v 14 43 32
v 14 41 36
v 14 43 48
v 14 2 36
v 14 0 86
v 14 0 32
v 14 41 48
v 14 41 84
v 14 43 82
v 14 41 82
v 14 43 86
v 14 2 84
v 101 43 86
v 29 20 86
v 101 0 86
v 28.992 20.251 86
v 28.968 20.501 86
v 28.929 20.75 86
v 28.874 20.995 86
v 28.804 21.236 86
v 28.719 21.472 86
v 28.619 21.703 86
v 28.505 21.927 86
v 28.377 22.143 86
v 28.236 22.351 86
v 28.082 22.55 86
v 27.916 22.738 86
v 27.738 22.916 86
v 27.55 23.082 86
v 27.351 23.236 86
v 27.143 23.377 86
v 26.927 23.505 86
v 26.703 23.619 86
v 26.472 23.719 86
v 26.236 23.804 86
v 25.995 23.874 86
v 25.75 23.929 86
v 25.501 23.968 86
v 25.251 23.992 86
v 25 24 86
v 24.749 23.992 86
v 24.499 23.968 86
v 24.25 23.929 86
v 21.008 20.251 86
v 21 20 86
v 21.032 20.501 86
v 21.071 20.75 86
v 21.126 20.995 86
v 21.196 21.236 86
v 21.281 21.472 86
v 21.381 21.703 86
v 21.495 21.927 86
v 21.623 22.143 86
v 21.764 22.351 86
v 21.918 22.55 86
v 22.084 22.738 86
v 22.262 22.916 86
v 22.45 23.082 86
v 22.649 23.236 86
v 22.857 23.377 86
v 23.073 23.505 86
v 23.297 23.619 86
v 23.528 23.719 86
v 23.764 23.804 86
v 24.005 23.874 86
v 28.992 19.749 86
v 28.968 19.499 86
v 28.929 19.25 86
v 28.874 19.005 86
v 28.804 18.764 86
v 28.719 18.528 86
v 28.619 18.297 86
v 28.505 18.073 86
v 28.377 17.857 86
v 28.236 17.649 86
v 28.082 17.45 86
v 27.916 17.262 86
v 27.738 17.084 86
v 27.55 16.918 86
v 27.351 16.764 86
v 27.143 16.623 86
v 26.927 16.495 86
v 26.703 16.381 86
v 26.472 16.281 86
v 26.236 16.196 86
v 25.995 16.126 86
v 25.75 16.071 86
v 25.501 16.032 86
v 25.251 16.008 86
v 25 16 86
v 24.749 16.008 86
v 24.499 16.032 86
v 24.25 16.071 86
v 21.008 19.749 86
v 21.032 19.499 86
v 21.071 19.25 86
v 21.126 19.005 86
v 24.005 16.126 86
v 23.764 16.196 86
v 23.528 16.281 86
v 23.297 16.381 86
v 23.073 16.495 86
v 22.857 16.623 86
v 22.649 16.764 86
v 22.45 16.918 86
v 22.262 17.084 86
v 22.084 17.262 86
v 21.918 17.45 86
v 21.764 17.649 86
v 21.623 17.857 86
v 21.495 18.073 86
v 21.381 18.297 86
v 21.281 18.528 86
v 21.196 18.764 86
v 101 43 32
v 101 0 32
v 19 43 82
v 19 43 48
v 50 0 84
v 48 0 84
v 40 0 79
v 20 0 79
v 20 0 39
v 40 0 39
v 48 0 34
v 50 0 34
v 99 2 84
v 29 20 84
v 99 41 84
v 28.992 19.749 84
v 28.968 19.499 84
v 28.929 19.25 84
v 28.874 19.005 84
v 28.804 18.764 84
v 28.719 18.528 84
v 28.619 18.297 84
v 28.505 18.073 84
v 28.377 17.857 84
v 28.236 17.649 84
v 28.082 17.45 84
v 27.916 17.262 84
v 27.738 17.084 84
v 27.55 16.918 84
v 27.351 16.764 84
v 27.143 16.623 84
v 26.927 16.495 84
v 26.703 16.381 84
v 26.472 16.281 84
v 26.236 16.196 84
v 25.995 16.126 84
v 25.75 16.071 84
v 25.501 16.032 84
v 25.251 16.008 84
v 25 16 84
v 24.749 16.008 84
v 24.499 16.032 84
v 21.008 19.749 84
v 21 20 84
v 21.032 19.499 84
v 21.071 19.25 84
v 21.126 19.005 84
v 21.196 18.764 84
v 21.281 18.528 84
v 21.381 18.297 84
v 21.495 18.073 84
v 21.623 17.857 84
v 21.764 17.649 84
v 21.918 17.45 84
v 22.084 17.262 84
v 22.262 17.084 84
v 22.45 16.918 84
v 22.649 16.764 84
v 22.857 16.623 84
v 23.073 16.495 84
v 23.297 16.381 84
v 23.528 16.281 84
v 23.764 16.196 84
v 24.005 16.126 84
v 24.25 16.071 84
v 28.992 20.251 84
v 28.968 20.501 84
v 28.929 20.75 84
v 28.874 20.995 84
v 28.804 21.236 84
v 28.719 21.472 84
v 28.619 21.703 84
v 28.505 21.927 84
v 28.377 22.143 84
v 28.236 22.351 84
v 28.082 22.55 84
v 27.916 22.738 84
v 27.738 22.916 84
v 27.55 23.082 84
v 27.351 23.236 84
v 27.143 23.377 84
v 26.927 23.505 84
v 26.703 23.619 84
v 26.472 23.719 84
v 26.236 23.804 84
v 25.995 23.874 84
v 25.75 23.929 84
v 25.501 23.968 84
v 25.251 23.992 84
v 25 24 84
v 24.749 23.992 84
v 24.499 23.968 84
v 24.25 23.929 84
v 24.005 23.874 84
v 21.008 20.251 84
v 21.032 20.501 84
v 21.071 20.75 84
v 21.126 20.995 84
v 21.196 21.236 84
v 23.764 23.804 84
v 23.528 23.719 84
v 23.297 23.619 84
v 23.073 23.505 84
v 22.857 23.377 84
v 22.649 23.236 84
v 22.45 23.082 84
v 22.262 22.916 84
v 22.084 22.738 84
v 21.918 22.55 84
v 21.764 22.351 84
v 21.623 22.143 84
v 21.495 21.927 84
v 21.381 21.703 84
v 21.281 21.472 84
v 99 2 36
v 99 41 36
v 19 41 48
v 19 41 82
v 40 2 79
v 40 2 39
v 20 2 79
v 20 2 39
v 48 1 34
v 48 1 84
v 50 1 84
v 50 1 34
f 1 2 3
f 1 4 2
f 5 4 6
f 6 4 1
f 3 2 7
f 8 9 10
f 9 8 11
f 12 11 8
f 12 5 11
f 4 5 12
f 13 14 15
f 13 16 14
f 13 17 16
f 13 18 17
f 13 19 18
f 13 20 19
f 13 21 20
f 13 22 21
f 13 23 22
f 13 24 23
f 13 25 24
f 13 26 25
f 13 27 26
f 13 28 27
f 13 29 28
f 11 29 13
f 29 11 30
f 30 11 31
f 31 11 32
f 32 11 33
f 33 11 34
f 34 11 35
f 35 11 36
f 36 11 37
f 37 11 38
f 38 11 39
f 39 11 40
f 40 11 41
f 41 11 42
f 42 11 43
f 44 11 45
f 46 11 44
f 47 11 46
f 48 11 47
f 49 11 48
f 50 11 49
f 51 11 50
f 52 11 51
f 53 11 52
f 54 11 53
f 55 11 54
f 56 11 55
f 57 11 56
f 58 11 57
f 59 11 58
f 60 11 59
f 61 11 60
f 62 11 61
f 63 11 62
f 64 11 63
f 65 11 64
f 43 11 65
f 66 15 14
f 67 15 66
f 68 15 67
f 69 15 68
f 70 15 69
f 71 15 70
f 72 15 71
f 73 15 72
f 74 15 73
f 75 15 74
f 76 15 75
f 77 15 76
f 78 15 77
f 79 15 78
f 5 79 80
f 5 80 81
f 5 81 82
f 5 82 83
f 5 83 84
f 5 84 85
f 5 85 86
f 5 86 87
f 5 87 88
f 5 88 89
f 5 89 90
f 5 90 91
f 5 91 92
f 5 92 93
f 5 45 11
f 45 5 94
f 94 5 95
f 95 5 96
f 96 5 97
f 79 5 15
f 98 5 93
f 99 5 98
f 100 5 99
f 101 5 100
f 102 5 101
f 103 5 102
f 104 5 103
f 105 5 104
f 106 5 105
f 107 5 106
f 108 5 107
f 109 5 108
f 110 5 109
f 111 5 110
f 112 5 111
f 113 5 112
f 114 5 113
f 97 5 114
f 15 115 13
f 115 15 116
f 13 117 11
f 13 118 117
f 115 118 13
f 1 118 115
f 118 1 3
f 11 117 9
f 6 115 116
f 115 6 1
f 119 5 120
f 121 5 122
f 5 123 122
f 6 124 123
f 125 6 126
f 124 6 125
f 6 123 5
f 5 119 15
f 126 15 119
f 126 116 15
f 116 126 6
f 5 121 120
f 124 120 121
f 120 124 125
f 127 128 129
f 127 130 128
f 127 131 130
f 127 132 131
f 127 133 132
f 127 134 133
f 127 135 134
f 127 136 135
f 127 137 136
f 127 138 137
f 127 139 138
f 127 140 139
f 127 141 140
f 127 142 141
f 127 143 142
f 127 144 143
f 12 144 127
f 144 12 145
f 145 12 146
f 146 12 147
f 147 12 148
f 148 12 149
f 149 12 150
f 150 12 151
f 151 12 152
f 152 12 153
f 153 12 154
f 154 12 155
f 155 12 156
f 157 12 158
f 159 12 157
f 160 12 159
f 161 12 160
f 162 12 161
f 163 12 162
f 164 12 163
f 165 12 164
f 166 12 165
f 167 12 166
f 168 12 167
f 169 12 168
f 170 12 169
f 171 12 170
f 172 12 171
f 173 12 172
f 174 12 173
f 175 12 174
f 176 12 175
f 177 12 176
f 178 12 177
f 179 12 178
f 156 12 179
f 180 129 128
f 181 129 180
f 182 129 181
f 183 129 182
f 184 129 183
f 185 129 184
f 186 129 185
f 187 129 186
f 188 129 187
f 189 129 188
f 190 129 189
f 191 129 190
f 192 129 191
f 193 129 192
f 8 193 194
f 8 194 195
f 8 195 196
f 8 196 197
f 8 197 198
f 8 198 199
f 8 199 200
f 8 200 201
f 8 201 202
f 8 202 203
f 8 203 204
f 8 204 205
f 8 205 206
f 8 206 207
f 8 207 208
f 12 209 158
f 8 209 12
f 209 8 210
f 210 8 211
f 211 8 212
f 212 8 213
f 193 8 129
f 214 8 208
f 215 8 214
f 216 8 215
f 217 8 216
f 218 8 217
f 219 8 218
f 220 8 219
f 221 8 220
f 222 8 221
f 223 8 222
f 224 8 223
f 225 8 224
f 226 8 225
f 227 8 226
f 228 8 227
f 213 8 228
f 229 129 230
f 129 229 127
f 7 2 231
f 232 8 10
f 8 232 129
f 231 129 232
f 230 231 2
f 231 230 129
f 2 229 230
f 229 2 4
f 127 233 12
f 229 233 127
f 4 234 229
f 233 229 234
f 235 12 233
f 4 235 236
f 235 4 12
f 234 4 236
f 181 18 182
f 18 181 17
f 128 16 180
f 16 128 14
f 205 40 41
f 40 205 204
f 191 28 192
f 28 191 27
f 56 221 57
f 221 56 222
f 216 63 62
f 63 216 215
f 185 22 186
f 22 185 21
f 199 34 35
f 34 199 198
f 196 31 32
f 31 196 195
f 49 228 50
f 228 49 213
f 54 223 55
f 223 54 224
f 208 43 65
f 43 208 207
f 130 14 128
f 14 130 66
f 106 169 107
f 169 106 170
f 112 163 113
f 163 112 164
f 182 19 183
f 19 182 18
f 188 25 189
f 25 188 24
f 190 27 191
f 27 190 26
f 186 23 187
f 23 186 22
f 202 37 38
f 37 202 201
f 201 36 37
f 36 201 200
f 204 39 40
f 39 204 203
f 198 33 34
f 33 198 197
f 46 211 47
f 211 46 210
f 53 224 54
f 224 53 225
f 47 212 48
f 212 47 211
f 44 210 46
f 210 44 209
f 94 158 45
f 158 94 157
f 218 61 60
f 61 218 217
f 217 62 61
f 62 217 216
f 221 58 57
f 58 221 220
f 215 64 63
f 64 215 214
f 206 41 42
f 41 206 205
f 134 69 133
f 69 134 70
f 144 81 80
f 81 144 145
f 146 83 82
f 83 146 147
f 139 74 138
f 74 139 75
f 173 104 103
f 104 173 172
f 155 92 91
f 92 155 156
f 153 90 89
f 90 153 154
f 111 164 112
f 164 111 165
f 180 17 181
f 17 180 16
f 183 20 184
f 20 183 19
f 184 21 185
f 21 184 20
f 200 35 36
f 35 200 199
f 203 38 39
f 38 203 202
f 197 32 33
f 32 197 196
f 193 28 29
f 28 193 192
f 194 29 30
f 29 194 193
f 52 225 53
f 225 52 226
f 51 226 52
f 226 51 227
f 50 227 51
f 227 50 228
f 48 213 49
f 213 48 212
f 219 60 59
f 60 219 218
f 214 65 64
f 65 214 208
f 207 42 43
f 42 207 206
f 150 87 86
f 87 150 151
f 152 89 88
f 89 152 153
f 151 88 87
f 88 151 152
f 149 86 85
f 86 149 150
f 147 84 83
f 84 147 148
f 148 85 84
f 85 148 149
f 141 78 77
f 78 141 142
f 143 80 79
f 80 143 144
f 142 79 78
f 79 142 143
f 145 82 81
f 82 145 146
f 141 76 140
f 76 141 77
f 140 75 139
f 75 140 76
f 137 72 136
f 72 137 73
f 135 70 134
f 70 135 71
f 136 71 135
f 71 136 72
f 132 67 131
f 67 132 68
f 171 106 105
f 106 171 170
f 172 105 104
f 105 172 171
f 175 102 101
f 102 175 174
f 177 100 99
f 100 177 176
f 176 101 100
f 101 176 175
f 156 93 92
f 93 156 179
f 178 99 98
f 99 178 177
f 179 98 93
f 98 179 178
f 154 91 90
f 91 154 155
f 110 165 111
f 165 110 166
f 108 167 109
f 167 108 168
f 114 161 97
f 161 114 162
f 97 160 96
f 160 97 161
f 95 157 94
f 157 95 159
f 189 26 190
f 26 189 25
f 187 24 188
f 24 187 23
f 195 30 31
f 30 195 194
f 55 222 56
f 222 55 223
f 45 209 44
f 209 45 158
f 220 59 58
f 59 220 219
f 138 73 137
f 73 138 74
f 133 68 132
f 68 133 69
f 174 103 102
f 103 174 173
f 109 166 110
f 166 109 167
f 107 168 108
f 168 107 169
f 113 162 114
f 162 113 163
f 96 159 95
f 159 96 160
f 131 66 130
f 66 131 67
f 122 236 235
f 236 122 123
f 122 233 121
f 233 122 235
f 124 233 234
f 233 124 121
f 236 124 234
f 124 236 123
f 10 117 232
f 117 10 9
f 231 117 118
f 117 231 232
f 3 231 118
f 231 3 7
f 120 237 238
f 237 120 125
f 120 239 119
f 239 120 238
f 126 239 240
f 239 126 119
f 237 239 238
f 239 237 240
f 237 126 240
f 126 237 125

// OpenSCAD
difference() {
    union() {
        //cube([15, 57, 86]);
        translate([14, 0, 32]) {
            cube([87, 43, 54]);
        }
        
    }
    
    // Aushöhlen des Haupt-Körpers
    translate([-1, 2, 36]) {
        cube([100, 39, 48]);
    }
    
    // Aussparung für Sensorkabel
    translate([25, 20, 82]) {
        cylinder(h=8, r1=4, r2=4, $fn=100);
    }
    translate([20, -2, 39]) { 
        cube([20, 5, 40]);
    }
    
    // Aussparung fuer Display
    translate([-1, 40, 48]) { 
        cube([20, 18, 34]);
    }
    
    // Einschiebelinie für Kabelkanal
    translate([48, -1, 34]) {
        cube([2, 2, 50]);
    }
}
